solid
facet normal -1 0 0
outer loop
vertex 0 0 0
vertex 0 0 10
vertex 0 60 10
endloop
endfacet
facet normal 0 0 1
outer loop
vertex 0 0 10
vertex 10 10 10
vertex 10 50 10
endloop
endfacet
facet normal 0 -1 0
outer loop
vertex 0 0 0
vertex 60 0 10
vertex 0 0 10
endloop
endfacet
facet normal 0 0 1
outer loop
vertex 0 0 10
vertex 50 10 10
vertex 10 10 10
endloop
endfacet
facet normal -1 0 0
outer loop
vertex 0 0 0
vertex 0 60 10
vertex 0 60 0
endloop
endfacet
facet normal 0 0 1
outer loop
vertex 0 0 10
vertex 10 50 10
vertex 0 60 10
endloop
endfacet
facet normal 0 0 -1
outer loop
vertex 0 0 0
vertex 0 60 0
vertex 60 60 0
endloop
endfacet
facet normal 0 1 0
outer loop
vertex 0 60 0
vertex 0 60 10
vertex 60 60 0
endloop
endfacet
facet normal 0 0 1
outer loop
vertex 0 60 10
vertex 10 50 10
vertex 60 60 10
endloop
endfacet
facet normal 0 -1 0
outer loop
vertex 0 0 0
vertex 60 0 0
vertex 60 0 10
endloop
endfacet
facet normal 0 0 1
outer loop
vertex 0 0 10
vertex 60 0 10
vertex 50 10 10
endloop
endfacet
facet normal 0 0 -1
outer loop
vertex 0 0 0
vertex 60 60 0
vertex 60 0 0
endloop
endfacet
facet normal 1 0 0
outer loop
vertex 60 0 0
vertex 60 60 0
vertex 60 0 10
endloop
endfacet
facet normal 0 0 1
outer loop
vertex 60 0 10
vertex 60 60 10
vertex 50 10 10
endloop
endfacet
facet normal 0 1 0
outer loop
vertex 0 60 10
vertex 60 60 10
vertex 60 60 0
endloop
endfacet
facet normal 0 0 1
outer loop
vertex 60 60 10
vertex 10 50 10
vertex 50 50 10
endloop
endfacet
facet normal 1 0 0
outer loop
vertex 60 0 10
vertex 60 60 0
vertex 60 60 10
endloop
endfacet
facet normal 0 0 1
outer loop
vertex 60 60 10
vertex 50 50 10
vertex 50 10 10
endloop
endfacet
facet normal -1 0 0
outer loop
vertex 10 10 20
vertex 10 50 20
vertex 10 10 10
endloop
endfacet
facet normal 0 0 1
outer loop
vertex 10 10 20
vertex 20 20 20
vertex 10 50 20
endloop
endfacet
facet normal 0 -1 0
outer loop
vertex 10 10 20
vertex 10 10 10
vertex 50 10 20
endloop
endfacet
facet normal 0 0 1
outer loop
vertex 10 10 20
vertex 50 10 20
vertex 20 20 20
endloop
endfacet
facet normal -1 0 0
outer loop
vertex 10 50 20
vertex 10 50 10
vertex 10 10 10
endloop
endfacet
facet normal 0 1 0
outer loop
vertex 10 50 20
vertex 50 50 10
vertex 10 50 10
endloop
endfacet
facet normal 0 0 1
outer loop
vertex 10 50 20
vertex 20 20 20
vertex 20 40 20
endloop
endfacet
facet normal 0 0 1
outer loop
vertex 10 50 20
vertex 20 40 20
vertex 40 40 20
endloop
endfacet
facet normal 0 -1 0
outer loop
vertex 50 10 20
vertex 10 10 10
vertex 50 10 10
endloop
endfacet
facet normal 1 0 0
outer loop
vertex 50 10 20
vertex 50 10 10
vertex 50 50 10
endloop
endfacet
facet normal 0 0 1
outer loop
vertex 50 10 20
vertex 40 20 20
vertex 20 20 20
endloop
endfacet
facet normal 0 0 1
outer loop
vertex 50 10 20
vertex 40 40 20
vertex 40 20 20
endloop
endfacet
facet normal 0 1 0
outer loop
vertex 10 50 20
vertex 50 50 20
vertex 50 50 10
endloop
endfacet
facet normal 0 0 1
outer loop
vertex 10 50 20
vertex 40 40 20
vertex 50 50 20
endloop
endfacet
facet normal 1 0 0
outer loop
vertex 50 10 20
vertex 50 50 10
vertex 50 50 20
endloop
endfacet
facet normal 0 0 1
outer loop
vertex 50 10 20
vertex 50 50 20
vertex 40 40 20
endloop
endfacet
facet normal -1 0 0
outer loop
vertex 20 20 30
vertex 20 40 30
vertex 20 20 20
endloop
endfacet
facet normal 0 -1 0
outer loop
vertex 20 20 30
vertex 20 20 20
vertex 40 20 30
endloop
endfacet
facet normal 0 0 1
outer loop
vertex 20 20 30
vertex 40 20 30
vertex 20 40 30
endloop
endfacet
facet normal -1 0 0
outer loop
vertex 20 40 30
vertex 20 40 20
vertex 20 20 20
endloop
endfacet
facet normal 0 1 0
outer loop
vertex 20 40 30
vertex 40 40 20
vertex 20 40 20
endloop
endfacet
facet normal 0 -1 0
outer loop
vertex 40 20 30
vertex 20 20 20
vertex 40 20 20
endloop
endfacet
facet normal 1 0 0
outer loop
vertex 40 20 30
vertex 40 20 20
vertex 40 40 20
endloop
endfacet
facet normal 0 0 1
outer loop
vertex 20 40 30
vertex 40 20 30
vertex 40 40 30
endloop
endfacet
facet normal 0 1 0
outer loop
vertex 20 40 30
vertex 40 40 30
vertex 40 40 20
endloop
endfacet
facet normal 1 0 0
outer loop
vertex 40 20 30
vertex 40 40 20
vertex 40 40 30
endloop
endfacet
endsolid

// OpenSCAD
union() {
  // 底辺 60x60x10
  cube([60, 60, 10]);

  // 中段 40x40x10 を中心揃えで上に置く
  translate([10, 10, 10]) cube([40, 40, 10]);

  // 上段 20x20x10 を中心揃えで上に置く
  translate([20, 20, 20]) cube([20, 20, 10]);
}
